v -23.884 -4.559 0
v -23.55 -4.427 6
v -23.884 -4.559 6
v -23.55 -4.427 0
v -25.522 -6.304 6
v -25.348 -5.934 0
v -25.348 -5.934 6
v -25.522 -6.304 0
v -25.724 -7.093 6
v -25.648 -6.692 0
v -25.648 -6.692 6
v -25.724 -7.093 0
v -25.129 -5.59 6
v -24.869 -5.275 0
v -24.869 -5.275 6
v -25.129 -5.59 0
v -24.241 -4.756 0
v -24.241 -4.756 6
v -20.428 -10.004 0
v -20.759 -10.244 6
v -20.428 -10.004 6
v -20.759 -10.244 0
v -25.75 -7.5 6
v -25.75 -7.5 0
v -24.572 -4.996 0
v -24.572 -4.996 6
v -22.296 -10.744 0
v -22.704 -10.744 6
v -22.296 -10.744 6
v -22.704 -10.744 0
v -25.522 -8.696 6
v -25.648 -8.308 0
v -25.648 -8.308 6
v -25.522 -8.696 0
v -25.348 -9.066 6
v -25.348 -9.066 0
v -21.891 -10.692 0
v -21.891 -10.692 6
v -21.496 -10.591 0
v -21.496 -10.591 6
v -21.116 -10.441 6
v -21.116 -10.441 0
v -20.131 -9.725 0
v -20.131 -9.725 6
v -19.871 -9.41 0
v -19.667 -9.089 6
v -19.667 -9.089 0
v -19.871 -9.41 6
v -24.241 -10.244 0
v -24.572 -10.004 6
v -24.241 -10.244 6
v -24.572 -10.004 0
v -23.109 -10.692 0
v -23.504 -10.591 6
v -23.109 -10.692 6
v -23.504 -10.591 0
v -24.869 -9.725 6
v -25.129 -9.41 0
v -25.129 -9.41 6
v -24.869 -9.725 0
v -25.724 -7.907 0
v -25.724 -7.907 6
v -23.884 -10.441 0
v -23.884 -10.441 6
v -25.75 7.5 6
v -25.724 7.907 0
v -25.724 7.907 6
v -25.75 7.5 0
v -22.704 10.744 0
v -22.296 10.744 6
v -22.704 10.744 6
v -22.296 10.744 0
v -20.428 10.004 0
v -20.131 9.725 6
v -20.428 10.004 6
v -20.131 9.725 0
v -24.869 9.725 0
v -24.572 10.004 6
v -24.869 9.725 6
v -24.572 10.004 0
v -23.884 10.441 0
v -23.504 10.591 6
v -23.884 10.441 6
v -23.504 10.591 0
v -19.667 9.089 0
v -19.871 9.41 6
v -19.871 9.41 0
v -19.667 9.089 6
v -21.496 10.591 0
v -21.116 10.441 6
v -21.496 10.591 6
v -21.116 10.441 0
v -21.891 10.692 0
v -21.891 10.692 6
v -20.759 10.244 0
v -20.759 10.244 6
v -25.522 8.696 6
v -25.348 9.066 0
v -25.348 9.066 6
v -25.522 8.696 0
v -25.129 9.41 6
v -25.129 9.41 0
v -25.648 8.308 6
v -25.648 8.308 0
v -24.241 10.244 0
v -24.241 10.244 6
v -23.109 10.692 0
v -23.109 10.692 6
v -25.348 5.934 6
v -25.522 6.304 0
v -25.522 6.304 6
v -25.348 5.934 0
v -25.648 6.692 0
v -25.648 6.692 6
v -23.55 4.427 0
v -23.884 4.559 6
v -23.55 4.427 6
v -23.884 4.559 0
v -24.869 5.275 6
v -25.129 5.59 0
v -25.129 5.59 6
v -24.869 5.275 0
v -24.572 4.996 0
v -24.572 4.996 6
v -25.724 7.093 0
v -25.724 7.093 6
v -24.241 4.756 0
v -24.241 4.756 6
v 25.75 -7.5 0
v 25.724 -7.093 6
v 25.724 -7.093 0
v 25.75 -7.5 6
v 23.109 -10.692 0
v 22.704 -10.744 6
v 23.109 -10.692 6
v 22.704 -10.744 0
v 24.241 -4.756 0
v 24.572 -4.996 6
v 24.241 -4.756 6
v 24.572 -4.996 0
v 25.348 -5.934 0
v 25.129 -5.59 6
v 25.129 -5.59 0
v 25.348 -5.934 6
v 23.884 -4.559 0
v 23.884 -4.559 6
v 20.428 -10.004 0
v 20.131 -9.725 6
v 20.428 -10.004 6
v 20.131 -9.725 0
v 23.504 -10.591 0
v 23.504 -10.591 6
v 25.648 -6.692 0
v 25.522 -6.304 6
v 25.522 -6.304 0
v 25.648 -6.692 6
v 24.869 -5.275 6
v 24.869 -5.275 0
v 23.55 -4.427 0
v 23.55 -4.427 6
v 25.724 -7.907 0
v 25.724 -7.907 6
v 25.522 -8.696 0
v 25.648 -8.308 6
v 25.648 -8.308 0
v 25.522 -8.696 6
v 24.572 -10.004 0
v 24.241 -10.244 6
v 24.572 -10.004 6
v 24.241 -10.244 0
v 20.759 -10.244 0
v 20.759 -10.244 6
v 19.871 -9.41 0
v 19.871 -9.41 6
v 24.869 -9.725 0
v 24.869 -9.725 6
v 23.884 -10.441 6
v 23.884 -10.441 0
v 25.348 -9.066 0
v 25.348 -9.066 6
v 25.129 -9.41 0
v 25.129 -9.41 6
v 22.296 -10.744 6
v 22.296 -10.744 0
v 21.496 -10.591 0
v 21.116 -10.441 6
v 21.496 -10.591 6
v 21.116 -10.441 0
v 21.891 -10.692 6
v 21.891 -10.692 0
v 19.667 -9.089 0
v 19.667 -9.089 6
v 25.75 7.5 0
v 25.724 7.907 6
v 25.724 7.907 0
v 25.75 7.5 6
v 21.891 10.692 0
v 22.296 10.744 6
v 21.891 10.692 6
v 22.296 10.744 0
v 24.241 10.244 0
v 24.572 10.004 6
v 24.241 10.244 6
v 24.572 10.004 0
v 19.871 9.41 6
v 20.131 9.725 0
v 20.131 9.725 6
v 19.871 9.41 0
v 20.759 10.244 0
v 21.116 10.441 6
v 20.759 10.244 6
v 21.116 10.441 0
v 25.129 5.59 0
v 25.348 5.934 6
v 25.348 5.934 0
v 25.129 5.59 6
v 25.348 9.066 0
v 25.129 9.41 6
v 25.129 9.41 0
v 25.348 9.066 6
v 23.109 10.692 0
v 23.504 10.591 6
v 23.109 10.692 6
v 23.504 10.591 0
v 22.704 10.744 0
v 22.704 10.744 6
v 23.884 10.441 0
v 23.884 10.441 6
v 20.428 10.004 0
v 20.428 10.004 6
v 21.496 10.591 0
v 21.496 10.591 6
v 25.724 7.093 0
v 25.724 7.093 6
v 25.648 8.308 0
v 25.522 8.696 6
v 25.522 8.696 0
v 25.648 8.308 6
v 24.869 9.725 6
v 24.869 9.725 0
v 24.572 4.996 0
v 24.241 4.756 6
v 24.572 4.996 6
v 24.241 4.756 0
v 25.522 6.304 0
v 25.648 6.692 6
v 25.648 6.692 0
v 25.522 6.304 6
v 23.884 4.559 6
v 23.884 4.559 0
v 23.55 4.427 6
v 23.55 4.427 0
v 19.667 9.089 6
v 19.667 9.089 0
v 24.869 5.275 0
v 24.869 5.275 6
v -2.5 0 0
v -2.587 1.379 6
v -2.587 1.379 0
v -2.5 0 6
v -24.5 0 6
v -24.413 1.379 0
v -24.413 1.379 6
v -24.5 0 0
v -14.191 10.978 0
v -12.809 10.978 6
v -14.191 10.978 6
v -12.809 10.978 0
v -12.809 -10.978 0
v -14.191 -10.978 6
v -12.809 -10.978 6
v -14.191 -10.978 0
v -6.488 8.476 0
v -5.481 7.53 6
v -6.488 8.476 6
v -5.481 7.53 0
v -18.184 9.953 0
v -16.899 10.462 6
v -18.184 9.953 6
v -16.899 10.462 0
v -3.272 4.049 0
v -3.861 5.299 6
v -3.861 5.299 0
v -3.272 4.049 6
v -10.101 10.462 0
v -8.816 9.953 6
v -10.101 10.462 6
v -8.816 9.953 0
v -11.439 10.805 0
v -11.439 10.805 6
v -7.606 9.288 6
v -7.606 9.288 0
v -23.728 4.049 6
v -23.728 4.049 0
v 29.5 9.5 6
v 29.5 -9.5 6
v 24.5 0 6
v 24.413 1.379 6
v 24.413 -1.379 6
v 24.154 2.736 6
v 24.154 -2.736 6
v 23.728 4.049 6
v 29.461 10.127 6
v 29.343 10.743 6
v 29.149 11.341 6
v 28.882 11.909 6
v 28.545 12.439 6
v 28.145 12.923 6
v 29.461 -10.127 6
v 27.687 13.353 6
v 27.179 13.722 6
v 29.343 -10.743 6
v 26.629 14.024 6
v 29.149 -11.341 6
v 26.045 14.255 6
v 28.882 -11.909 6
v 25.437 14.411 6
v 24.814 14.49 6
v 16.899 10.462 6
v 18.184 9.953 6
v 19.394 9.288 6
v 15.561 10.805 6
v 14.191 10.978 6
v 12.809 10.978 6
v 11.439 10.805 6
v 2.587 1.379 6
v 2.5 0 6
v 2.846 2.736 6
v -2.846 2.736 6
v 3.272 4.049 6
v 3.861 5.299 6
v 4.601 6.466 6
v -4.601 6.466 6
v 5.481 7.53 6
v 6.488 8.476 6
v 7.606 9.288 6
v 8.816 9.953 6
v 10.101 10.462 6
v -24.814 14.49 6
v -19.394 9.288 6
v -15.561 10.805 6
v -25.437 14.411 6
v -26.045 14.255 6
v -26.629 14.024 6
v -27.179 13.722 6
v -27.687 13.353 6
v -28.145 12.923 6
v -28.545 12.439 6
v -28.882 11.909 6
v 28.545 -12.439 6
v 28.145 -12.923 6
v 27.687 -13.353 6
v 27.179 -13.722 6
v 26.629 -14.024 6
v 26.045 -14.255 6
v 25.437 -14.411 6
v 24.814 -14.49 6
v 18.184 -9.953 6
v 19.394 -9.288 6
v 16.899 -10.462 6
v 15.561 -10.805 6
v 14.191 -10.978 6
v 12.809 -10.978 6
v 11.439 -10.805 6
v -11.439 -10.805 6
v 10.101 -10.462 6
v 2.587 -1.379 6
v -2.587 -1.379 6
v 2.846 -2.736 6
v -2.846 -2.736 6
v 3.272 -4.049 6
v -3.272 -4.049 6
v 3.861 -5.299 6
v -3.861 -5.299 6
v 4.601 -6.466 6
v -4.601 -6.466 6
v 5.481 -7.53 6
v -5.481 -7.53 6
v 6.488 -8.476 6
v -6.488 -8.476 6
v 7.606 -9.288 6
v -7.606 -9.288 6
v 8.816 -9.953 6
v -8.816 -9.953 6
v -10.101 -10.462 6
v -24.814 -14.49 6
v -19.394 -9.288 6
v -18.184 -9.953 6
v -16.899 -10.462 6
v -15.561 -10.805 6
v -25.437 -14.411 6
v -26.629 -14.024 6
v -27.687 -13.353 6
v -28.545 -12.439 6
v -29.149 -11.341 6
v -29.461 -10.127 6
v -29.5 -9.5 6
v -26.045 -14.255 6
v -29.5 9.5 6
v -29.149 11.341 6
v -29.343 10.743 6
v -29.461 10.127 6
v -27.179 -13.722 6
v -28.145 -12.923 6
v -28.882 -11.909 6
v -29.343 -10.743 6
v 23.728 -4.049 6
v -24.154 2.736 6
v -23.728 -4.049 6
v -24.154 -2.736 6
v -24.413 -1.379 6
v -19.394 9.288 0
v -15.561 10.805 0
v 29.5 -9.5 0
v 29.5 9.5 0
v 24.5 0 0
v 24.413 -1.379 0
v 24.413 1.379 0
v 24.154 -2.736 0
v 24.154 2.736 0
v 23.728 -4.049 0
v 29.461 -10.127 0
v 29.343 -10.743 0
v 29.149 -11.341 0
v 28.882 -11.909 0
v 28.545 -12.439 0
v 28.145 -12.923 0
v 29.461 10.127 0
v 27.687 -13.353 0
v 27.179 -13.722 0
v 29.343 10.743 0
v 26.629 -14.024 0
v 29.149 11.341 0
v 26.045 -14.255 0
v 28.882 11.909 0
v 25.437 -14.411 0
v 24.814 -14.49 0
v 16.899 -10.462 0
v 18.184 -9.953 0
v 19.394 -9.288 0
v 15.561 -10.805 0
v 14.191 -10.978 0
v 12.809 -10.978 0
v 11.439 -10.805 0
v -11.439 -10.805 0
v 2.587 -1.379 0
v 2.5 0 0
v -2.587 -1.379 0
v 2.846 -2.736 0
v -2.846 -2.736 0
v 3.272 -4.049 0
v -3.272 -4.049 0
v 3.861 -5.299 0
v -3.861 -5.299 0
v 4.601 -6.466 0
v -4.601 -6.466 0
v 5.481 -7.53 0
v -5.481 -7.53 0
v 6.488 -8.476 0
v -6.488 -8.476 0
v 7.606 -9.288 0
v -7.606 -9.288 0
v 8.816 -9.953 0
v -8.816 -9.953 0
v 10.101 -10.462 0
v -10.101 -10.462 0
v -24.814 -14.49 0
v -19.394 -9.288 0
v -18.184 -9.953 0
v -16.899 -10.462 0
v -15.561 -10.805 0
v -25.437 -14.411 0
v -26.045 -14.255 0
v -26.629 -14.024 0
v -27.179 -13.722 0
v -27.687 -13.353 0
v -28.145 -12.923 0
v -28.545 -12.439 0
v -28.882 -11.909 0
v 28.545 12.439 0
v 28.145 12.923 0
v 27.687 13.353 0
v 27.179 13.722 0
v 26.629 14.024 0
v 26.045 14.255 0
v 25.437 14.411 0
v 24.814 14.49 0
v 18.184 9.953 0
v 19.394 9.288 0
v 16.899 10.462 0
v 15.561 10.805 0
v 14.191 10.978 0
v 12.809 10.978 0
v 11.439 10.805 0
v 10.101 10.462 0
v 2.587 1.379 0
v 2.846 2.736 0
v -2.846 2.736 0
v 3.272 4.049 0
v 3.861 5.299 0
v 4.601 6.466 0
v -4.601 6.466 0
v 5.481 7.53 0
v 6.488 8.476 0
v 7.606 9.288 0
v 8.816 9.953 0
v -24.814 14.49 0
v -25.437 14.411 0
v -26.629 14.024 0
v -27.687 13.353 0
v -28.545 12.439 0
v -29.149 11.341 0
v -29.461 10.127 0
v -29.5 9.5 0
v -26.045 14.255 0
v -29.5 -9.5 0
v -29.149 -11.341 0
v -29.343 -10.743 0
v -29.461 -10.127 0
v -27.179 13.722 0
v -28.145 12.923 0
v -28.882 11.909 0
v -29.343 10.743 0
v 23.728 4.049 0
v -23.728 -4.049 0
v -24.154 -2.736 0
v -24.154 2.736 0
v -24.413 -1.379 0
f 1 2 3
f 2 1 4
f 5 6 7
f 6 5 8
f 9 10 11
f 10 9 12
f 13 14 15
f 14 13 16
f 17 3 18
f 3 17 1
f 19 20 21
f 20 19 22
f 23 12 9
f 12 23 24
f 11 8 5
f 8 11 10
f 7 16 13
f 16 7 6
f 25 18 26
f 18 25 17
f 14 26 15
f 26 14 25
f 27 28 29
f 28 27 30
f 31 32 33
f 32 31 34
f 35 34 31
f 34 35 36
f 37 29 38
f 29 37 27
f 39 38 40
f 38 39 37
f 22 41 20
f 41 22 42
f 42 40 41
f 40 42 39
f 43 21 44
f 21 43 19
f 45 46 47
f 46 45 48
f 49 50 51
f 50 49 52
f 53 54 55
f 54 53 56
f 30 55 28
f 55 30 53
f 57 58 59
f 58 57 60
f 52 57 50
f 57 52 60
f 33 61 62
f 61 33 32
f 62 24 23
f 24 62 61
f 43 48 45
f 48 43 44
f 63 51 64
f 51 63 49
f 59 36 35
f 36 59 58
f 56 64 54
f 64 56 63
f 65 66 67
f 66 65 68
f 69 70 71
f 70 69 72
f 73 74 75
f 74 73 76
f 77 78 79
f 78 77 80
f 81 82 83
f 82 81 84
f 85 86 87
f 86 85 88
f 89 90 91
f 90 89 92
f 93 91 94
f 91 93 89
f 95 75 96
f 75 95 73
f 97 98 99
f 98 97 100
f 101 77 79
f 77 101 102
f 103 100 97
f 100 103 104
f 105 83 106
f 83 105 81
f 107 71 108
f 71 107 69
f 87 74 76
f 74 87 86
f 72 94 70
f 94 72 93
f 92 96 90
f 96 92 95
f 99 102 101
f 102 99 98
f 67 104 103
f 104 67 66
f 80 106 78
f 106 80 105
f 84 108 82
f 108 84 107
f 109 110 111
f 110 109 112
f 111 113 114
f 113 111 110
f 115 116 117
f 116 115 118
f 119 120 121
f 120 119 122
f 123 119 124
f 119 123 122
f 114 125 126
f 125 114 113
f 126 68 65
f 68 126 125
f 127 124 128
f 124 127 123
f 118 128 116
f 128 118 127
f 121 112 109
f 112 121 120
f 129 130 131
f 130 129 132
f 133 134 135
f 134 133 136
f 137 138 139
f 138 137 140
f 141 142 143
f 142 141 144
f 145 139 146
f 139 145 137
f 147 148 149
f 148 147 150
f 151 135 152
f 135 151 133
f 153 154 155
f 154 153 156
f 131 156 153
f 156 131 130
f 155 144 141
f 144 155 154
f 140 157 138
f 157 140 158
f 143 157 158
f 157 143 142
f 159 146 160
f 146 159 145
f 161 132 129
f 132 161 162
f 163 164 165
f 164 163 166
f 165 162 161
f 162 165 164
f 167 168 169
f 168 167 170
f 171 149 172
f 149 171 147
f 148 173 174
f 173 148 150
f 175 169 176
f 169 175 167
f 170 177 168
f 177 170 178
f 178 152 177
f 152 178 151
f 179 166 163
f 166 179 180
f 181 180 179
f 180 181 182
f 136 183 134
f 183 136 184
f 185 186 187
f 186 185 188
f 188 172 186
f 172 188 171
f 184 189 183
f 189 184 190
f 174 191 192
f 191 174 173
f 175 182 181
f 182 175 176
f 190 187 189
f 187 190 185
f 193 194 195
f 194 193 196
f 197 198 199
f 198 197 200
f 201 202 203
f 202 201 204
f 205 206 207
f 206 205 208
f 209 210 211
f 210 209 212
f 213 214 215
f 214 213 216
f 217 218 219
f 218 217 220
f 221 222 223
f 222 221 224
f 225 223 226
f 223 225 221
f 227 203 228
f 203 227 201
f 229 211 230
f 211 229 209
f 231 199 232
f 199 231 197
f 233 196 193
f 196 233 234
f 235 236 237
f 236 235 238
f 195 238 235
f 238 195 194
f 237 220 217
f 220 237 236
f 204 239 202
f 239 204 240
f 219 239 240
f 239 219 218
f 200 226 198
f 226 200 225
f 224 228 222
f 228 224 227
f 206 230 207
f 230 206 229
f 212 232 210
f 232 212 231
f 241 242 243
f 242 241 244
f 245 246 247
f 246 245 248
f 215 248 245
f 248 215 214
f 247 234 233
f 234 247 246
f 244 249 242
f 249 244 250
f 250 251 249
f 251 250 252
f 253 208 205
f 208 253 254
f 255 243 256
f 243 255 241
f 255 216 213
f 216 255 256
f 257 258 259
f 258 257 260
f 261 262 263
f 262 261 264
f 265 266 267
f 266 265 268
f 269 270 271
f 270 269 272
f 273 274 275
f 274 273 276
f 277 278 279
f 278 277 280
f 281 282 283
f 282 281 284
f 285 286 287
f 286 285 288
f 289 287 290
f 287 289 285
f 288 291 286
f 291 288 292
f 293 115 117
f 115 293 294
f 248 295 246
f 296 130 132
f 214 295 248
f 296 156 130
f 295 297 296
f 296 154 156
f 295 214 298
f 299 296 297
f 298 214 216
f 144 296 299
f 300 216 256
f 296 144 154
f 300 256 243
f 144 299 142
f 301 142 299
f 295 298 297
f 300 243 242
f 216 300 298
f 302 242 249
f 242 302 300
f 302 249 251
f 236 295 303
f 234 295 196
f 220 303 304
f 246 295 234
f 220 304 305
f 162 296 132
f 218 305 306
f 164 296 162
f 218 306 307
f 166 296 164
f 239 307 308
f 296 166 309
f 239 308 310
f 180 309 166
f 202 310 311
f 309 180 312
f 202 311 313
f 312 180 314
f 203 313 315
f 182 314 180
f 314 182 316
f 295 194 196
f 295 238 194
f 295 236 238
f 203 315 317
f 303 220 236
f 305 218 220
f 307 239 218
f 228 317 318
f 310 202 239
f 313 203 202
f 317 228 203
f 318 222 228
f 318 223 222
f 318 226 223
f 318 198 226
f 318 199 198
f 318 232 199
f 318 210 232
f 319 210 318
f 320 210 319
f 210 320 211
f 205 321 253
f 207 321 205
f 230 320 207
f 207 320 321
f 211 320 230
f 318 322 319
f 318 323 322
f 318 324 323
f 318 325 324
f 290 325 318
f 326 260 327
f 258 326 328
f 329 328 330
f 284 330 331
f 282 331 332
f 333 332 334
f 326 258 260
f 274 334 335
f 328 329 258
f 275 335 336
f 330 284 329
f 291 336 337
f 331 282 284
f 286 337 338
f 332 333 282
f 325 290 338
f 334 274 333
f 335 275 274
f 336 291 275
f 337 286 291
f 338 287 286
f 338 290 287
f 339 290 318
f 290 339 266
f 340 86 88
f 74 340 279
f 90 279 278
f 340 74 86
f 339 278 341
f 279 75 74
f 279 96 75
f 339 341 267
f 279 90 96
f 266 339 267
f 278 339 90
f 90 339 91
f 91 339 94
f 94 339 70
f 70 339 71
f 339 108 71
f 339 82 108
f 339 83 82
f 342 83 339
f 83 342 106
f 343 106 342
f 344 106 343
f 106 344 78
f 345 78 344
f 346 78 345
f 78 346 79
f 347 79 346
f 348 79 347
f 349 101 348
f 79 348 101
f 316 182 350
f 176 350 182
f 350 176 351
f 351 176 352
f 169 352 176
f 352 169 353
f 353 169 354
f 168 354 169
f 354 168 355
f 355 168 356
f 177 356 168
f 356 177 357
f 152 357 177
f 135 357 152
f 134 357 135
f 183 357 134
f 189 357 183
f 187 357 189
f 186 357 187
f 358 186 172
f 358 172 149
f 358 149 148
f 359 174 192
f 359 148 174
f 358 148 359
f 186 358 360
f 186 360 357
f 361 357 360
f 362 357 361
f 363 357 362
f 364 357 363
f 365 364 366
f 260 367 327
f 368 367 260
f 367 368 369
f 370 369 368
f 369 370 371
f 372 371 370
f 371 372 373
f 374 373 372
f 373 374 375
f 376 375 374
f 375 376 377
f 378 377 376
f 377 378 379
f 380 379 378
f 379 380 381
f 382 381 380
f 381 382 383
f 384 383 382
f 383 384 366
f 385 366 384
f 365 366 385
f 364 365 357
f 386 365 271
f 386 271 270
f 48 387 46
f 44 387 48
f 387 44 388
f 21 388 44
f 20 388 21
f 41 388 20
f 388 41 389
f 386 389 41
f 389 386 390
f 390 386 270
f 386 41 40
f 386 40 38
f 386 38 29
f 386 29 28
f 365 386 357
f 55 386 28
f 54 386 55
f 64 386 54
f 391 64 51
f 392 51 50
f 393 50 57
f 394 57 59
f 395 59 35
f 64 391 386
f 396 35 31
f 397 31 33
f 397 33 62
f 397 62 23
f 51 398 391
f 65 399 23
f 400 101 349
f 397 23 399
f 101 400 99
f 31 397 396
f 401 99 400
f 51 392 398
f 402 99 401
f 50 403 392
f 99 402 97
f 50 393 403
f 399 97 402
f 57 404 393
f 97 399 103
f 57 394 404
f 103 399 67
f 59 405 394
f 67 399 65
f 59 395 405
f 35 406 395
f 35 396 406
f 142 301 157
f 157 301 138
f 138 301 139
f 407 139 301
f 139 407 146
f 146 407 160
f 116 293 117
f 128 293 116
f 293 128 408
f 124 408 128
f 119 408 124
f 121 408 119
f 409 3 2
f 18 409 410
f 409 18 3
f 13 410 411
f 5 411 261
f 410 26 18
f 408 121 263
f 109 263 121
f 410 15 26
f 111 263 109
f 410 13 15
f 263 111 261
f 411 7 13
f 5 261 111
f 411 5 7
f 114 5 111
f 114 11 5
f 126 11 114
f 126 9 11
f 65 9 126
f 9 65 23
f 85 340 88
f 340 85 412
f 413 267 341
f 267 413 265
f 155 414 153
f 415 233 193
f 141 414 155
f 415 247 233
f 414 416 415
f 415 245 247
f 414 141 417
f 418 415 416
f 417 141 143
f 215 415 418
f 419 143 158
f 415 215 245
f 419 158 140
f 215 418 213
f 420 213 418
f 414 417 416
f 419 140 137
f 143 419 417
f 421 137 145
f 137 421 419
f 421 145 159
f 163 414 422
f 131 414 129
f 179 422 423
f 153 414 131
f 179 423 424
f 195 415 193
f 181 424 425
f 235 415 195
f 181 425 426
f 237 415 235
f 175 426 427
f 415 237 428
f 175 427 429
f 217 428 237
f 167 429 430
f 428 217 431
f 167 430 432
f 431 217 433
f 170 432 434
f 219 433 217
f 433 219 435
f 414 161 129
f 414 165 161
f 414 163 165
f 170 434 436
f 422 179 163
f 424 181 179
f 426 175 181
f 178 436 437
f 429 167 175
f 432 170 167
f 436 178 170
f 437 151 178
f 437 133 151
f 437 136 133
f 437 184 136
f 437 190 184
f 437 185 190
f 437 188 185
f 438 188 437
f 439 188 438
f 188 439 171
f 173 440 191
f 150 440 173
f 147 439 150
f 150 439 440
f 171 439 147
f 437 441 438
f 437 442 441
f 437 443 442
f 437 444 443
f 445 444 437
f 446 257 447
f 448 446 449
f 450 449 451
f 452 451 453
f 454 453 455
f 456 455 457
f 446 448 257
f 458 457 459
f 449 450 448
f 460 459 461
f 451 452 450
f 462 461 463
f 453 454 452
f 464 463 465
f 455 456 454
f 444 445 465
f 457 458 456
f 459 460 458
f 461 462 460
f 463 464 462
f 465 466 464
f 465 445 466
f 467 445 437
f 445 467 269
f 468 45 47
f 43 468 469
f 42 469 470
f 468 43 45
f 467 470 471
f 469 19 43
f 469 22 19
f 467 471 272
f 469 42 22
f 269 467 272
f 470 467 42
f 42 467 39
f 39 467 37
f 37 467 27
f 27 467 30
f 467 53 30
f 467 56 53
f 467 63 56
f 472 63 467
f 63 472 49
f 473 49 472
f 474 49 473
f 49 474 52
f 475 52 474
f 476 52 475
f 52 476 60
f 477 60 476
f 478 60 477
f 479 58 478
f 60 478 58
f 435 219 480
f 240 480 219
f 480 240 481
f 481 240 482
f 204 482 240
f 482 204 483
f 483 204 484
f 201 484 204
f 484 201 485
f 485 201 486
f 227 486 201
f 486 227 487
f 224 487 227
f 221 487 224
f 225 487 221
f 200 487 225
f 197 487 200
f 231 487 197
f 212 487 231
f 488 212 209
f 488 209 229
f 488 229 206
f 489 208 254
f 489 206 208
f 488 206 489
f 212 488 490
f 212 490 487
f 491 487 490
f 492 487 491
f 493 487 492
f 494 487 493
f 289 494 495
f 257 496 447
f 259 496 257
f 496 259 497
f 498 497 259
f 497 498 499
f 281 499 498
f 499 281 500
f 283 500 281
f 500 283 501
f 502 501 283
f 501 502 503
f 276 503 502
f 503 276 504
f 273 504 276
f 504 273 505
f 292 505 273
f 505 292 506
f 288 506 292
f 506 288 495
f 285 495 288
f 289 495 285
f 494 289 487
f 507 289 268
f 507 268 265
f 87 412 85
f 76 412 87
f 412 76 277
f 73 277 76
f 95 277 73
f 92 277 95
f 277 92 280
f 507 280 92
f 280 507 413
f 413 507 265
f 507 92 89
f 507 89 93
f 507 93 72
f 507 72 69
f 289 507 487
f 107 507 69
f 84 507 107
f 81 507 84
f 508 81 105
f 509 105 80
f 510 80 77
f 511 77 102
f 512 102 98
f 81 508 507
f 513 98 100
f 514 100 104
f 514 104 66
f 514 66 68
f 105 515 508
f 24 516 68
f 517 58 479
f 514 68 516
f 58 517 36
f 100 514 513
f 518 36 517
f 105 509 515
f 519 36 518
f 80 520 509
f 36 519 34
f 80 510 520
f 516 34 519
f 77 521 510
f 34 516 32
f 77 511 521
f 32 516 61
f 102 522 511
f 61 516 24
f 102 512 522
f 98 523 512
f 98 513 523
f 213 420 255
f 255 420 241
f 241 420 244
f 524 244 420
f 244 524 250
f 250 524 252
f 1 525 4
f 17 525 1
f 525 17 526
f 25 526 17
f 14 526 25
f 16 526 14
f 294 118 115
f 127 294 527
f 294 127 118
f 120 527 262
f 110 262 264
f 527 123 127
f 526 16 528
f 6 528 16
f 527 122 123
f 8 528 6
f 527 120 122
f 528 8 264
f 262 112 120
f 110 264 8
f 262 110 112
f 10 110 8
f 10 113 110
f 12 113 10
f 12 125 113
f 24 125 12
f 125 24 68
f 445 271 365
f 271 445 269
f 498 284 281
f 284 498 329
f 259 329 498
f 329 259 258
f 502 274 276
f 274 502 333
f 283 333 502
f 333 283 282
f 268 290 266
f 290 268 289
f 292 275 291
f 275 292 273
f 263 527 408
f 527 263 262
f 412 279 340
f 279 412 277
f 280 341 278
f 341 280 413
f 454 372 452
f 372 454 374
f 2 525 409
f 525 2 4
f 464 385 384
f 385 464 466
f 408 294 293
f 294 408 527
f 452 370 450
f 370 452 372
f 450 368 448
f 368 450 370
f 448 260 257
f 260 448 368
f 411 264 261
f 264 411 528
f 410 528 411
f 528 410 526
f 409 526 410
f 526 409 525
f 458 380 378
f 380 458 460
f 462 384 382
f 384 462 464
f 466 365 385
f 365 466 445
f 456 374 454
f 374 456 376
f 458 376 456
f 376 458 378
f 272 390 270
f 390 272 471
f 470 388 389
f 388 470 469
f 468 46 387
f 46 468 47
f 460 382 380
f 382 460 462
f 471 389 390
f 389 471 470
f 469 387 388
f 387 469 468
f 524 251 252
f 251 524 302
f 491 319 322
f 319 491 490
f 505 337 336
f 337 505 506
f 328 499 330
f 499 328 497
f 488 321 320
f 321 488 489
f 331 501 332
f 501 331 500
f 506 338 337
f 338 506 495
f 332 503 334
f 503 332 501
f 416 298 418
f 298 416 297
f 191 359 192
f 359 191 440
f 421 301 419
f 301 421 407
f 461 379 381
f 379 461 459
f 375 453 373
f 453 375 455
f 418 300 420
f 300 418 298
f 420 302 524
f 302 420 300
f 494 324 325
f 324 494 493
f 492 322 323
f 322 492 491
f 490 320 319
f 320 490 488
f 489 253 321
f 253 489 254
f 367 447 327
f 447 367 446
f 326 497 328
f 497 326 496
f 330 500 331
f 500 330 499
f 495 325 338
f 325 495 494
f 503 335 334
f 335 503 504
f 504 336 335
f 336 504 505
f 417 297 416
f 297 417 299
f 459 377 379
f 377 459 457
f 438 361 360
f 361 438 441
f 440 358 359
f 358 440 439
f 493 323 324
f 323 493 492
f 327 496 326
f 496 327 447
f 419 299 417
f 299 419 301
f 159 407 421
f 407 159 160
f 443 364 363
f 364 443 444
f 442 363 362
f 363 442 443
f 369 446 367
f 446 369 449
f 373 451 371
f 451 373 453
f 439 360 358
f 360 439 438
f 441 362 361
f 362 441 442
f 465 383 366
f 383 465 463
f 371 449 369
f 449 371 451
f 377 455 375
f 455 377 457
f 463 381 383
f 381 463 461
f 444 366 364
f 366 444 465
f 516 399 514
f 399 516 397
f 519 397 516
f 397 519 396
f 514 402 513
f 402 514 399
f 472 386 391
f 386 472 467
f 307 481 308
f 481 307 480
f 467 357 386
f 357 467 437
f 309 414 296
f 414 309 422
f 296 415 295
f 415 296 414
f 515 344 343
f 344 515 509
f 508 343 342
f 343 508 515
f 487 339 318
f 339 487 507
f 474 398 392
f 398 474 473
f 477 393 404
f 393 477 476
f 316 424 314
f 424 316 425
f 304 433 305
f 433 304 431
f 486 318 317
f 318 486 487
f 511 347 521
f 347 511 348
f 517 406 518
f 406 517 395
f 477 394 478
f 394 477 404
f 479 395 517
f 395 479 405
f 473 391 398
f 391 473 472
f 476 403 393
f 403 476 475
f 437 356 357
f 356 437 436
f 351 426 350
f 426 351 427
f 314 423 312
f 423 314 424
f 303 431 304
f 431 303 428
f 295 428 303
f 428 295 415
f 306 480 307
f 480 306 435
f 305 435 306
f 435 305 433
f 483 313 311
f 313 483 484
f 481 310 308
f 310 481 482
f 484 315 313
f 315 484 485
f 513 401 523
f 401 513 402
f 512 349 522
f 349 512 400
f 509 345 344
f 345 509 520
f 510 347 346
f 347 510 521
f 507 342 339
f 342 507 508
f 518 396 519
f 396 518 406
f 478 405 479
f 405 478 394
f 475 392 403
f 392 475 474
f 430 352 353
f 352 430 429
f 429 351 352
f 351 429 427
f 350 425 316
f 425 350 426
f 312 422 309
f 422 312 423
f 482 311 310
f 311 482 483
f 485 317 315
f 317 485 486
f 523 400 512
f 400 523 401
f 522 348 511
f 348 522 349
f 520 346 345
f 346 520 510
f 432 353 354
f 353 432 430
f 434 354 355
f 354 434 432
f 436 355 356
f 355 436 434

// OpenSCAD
$fn = 50;


difference() {
	union() {
		hull() {
			translate(v = [-24.5000000000, 9.5000000000, 0]) {
				cylinder(h = 6, r = 5);
			}
			translate(v = [24.5000000000, 9.5000000000, 0]) {
				cylinder(h = 6, r = 5);
			}
			translate(v = [-24.5000000000, -9.5000000000, 0]) {
				cylinder(h = 6, r = 5);
			}
			translate(v = [24.5000000000, -9.5000000000, 0]) {
				cylinder(h = 6, r = 5);
			}
		}
	}
	union() {
		#translate(v = [-22.5000000000, -7.5000000000, -100.0000000000]) {
			cylinder(h = 200, r = 3.2500000000);
		}
		#translate(v = [-22.5000000000, 7.5000000000, -100.0000000000]) {
			cylinder(h = 200, r = 3.2500000000);
		}
		#translate(v = [22.5000000000, -7.5000000000, -100.0000000000]) {
			cylinder(h = 200, r = 3.2500000000);
		}
		#translate(v = [22.5000000000, 7.5000000000, -100.0000000000]) {
			cylinder(h = 200, r = 3.2500000000);
		}
		#translate(v = [-13.5000000000, 0, 0]) {
			cylinder(h = 6, r = 11.0000000000);
		}
		#translate(v = [13.5000000000, 0, 0]) {
			cylinder(h = 6, r = 11.0000000000);
		}
	}
}
